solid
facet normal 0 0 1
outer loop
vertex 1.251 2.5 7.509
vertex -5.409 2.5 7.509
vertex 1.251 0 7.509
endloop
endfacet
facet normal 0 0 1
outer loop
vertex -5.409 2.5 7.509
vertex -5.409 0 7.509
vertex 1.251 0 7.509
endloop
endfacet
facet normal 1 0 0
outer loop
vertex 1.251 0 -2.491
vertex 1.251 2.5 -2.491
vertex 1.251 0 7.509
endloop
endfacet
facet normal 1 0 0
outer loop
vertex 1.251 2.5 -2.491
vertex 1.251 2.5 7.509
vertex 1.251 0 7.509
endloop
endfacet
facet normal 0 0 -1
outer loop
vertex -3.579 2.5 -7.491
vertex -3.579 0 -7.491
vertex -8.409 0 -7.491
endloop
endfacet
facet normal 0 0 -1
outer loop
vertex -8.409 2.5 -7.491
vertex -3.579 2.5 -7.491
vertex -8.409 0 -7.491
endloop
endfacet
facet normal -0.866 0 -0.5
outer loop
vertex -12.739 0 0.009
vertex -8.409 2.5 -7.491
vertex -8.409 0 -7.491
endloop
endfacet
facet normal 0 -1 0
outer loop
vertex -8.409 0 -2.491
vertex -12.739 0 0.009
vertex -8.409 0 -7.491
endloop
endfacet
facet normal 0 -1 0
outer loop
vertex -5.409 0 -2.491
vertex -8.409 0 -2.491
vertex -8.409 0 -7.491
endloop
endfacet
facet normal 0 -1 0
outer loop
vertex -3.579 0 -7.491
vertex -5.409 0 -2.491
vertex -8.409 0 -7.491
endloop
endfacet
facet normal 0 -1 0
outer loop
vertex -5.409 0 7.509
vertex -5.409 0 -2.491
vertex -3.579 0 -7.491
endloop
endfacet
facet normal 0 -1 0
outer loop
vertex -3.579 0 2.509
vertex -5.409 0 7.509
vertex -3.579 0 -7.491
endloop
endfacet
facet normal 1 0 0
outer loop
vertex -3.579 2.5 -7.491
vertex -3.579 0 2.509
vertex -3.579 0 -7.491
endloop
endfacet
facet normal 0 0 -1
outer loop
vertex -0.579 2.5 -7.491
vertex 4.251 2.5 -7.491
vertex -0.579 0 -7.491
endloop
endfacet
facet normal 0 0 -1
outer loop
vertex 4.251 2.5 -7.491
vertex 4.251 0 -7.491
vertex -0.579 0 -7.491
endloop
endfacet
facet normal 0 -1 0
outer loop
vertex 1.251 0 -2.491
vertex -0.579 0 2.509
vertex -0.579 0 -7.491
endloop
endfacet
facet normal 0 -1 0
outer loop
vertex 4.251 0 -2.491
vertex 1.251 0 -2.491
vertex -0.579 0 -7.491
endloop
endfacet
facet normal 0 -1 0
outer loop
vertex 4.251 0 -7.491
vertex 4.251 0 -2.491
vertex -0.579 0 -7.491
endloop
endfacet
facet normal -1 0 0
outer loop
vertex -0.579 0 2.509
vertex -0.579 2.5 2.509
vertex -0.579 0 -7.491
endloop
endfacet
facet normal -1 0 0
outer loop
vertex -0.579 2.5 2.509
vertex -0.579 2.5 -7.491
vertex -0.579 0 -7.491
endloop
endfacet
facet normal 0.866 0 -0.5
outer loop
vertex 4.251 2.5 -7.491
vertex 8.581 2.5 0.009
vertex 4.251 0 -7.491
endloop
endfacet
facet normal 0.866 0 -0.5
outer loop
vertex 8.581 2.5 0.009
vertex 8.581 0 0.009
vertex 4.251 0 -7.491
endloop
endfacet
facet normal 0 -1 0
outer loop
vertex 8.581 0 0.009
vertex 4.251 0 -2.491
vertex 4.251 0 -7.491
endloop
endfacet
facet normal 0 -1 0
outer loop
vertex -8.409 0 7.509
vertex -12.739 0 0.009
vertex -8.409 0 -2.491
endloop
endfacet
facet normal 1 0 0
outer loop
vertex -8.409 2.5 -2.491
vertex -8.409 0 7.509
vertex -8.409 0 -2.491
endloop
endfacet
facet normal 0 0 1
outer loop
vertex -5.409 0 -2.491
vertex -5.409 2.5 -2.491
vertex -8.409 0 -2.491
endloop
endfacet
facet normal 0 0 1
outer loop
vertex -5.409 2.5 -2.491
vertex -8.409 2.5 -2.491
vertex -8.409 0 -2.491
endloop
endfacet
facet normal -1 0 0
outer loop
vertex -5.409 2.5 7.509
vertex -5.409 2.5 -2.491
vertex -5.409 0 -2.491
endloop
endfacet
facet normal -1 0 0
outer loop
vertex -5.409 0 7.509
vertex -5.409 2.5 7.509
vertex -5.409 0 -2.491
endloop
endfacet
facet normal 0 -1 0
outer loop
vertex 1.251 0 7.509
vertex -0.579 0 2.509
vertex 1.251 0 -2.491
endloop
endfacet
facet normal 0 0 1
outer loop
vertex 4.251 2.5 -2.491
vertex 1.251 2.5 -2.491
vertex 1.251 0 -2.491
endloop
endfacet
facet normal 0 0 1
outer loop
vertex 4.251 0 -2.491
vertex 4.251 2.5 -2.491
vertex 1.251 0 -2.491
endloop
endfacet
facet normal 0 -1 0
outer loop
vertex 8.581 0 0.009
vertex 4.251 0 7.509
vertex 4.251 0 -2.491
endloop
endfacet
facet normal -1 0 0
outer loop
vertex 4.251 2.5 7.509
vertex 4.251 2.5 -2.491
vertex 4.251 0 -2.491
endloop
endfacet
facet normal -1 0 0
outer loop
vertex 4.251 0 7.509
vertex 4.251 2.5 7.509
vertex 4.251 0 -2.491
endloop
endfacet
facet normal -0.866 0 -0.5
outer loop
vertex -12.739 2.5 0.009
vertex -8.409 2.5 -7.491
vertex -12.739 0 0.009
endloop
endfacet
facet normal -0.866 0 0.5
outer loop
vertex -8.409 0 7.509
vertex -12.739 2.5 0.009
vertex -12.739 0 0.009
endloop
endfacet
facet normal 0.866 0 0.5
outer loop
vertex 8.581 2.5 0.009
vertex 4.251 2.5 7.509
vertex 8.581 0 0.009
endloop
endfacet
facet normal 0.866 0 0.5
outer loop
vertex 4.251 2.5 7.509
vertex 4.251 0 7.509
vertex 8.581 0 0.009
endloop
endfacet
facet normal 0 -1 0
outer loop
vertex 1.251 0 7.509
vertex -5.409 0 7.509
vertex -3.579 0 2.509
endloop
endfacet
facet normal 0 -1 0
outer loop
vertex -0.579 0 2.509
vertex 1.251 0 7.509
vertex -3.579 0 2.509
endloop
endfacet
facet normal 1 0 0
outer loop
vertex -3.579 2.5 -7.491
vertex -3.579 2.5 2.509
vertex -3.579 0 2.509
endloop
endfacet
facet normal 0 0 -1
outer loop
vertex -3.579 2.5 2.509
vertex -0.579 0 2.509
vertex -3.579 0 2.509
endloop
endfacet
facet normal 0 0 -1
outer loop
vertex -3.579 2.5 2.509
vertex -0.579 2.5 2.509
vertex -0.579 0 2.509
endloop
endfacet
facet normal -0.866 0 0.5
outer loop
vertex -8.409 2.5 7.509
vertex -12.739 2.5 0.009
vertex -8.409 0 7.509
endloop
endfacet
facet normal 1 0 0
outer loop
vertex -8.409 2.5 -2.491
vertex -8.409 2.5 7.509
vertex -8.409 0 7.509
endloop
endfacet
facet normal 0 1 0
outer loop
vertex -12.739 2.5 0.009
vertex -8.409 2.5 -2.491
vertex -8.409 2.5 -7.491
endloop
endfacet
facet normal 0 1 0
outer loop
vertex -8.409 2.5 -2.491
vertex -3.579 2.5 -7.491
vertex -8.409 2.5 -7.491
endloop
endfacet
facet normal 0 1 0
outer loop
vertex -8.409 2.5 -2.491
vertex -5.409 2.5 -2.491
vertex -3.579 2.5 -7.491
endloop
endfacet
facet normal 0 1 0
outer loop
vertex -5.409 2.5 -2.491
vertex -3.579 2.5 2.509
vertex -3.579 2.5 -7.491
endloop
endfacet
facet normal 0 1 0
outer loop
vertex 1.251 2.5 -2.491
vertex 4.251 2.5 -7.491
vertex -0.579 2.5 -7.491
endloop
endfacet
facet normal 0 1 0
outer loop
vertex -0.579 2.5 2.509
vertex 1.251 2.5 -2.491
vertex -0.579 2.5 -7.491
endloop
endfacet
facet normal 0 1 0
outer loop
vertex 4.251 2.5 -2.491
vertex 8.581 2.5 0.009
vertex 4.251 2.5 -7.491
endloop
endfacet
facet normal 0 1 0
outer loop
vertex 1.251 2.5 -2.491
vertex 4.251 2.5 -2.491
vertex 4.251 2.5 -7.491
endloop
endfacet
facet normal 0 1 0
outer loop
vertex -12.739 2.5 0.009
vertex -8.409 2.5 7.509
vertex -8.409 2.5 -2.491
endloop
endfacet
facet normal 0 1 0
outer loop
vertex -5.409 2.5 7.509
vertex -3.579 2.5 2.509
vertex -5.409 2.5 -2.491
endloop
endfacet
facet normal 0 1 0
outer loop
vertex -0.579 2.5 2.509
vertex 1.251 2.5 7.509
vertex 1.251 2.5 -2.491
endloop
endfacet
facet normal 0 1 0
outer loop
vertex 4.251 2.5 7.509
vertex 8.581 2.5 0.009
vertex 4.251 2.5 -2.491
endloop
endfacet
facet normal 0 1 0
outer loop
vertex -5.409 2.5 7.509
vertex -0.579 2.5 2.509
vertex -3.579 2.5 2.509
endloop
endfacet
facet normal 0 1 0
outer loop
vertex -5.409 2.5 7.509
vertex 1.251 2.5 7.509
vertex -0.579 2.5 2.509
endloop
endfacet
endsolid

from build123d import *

# Parameters (mm, degrees)
BOSS_EXTRUDE1_DEPTH = 2.5
SKETCH5_W           = 3
SKETCH5_H           = 2.5
CUT_EXTRUDE2_DEPTH  = 10
SKETCH6_W           = 3
SKETCH6_H           = 2.5
CUT_EXTRUDE3_DEPTH  = 10
SKETCH7_W           = 3
SKETCH7_H           = 2.5
CUT_EXTRUDE4_DEPTH  = 10


with BuildPart() as part:
    # Sketch1 → Boss-Extrude1 (new body)
    with BuildSketch(Plane(origin=(0, 0, 0), x_dir=(1, 0, 0), z_dir=(0, 1, 0))):
        Polygon((8.581310361, -0.009375041), (4.251183342, 7.490624959), (-8.409070695, 7.490624959), (-12.739197714, -0.009375041), (-8.409070695, -7.509375041), (4.251183342, -7.509375041), align=None)
    extrude(amount=BOSS_EXTRUDE1_DEPTH)

    # Sketch5 → Cut-Extrude2 (cut)
    with BuildSketch(Plane.XY.offset(7.509375041)):
        with Locations((-6.909070695, 1.25)):
            Rectangle(SKETCH5_W, SKETCH5_H)
    extrude(amount=-CUT_EXTRUDE2_DEPTH, mode=Mode.SUBTRACT)

    # Sketch6 → Cut-Extrude3 (cut)
    with BuildSketch(Plane.XY.offset(7.509375041)):
        with Locations((2.751183342, 1.25)):
            Rectangle(SKETCH6_W, SKETCH6_H)
    extrude(amount=-CUT_EXTRUDE3_DEPTH, mode=Mode.SUBTRACT)

    # Sketch7 → Cut-Extrude4 (cut)
    with BuildSketch(Plane(origin=(0, 0, -7.490624959), x_dir=(-1, 0, 0), z_dir=(0, 0, -1))):
        with Locations((2.078816658, 1.25)):
            Rectangle(SKETCH7_W, SKETCH7_H)
    extrude(amount=-CUT_EXTRUDE4_DEPTH, mode=Mode.SUBTRACT)


solid = part.part
